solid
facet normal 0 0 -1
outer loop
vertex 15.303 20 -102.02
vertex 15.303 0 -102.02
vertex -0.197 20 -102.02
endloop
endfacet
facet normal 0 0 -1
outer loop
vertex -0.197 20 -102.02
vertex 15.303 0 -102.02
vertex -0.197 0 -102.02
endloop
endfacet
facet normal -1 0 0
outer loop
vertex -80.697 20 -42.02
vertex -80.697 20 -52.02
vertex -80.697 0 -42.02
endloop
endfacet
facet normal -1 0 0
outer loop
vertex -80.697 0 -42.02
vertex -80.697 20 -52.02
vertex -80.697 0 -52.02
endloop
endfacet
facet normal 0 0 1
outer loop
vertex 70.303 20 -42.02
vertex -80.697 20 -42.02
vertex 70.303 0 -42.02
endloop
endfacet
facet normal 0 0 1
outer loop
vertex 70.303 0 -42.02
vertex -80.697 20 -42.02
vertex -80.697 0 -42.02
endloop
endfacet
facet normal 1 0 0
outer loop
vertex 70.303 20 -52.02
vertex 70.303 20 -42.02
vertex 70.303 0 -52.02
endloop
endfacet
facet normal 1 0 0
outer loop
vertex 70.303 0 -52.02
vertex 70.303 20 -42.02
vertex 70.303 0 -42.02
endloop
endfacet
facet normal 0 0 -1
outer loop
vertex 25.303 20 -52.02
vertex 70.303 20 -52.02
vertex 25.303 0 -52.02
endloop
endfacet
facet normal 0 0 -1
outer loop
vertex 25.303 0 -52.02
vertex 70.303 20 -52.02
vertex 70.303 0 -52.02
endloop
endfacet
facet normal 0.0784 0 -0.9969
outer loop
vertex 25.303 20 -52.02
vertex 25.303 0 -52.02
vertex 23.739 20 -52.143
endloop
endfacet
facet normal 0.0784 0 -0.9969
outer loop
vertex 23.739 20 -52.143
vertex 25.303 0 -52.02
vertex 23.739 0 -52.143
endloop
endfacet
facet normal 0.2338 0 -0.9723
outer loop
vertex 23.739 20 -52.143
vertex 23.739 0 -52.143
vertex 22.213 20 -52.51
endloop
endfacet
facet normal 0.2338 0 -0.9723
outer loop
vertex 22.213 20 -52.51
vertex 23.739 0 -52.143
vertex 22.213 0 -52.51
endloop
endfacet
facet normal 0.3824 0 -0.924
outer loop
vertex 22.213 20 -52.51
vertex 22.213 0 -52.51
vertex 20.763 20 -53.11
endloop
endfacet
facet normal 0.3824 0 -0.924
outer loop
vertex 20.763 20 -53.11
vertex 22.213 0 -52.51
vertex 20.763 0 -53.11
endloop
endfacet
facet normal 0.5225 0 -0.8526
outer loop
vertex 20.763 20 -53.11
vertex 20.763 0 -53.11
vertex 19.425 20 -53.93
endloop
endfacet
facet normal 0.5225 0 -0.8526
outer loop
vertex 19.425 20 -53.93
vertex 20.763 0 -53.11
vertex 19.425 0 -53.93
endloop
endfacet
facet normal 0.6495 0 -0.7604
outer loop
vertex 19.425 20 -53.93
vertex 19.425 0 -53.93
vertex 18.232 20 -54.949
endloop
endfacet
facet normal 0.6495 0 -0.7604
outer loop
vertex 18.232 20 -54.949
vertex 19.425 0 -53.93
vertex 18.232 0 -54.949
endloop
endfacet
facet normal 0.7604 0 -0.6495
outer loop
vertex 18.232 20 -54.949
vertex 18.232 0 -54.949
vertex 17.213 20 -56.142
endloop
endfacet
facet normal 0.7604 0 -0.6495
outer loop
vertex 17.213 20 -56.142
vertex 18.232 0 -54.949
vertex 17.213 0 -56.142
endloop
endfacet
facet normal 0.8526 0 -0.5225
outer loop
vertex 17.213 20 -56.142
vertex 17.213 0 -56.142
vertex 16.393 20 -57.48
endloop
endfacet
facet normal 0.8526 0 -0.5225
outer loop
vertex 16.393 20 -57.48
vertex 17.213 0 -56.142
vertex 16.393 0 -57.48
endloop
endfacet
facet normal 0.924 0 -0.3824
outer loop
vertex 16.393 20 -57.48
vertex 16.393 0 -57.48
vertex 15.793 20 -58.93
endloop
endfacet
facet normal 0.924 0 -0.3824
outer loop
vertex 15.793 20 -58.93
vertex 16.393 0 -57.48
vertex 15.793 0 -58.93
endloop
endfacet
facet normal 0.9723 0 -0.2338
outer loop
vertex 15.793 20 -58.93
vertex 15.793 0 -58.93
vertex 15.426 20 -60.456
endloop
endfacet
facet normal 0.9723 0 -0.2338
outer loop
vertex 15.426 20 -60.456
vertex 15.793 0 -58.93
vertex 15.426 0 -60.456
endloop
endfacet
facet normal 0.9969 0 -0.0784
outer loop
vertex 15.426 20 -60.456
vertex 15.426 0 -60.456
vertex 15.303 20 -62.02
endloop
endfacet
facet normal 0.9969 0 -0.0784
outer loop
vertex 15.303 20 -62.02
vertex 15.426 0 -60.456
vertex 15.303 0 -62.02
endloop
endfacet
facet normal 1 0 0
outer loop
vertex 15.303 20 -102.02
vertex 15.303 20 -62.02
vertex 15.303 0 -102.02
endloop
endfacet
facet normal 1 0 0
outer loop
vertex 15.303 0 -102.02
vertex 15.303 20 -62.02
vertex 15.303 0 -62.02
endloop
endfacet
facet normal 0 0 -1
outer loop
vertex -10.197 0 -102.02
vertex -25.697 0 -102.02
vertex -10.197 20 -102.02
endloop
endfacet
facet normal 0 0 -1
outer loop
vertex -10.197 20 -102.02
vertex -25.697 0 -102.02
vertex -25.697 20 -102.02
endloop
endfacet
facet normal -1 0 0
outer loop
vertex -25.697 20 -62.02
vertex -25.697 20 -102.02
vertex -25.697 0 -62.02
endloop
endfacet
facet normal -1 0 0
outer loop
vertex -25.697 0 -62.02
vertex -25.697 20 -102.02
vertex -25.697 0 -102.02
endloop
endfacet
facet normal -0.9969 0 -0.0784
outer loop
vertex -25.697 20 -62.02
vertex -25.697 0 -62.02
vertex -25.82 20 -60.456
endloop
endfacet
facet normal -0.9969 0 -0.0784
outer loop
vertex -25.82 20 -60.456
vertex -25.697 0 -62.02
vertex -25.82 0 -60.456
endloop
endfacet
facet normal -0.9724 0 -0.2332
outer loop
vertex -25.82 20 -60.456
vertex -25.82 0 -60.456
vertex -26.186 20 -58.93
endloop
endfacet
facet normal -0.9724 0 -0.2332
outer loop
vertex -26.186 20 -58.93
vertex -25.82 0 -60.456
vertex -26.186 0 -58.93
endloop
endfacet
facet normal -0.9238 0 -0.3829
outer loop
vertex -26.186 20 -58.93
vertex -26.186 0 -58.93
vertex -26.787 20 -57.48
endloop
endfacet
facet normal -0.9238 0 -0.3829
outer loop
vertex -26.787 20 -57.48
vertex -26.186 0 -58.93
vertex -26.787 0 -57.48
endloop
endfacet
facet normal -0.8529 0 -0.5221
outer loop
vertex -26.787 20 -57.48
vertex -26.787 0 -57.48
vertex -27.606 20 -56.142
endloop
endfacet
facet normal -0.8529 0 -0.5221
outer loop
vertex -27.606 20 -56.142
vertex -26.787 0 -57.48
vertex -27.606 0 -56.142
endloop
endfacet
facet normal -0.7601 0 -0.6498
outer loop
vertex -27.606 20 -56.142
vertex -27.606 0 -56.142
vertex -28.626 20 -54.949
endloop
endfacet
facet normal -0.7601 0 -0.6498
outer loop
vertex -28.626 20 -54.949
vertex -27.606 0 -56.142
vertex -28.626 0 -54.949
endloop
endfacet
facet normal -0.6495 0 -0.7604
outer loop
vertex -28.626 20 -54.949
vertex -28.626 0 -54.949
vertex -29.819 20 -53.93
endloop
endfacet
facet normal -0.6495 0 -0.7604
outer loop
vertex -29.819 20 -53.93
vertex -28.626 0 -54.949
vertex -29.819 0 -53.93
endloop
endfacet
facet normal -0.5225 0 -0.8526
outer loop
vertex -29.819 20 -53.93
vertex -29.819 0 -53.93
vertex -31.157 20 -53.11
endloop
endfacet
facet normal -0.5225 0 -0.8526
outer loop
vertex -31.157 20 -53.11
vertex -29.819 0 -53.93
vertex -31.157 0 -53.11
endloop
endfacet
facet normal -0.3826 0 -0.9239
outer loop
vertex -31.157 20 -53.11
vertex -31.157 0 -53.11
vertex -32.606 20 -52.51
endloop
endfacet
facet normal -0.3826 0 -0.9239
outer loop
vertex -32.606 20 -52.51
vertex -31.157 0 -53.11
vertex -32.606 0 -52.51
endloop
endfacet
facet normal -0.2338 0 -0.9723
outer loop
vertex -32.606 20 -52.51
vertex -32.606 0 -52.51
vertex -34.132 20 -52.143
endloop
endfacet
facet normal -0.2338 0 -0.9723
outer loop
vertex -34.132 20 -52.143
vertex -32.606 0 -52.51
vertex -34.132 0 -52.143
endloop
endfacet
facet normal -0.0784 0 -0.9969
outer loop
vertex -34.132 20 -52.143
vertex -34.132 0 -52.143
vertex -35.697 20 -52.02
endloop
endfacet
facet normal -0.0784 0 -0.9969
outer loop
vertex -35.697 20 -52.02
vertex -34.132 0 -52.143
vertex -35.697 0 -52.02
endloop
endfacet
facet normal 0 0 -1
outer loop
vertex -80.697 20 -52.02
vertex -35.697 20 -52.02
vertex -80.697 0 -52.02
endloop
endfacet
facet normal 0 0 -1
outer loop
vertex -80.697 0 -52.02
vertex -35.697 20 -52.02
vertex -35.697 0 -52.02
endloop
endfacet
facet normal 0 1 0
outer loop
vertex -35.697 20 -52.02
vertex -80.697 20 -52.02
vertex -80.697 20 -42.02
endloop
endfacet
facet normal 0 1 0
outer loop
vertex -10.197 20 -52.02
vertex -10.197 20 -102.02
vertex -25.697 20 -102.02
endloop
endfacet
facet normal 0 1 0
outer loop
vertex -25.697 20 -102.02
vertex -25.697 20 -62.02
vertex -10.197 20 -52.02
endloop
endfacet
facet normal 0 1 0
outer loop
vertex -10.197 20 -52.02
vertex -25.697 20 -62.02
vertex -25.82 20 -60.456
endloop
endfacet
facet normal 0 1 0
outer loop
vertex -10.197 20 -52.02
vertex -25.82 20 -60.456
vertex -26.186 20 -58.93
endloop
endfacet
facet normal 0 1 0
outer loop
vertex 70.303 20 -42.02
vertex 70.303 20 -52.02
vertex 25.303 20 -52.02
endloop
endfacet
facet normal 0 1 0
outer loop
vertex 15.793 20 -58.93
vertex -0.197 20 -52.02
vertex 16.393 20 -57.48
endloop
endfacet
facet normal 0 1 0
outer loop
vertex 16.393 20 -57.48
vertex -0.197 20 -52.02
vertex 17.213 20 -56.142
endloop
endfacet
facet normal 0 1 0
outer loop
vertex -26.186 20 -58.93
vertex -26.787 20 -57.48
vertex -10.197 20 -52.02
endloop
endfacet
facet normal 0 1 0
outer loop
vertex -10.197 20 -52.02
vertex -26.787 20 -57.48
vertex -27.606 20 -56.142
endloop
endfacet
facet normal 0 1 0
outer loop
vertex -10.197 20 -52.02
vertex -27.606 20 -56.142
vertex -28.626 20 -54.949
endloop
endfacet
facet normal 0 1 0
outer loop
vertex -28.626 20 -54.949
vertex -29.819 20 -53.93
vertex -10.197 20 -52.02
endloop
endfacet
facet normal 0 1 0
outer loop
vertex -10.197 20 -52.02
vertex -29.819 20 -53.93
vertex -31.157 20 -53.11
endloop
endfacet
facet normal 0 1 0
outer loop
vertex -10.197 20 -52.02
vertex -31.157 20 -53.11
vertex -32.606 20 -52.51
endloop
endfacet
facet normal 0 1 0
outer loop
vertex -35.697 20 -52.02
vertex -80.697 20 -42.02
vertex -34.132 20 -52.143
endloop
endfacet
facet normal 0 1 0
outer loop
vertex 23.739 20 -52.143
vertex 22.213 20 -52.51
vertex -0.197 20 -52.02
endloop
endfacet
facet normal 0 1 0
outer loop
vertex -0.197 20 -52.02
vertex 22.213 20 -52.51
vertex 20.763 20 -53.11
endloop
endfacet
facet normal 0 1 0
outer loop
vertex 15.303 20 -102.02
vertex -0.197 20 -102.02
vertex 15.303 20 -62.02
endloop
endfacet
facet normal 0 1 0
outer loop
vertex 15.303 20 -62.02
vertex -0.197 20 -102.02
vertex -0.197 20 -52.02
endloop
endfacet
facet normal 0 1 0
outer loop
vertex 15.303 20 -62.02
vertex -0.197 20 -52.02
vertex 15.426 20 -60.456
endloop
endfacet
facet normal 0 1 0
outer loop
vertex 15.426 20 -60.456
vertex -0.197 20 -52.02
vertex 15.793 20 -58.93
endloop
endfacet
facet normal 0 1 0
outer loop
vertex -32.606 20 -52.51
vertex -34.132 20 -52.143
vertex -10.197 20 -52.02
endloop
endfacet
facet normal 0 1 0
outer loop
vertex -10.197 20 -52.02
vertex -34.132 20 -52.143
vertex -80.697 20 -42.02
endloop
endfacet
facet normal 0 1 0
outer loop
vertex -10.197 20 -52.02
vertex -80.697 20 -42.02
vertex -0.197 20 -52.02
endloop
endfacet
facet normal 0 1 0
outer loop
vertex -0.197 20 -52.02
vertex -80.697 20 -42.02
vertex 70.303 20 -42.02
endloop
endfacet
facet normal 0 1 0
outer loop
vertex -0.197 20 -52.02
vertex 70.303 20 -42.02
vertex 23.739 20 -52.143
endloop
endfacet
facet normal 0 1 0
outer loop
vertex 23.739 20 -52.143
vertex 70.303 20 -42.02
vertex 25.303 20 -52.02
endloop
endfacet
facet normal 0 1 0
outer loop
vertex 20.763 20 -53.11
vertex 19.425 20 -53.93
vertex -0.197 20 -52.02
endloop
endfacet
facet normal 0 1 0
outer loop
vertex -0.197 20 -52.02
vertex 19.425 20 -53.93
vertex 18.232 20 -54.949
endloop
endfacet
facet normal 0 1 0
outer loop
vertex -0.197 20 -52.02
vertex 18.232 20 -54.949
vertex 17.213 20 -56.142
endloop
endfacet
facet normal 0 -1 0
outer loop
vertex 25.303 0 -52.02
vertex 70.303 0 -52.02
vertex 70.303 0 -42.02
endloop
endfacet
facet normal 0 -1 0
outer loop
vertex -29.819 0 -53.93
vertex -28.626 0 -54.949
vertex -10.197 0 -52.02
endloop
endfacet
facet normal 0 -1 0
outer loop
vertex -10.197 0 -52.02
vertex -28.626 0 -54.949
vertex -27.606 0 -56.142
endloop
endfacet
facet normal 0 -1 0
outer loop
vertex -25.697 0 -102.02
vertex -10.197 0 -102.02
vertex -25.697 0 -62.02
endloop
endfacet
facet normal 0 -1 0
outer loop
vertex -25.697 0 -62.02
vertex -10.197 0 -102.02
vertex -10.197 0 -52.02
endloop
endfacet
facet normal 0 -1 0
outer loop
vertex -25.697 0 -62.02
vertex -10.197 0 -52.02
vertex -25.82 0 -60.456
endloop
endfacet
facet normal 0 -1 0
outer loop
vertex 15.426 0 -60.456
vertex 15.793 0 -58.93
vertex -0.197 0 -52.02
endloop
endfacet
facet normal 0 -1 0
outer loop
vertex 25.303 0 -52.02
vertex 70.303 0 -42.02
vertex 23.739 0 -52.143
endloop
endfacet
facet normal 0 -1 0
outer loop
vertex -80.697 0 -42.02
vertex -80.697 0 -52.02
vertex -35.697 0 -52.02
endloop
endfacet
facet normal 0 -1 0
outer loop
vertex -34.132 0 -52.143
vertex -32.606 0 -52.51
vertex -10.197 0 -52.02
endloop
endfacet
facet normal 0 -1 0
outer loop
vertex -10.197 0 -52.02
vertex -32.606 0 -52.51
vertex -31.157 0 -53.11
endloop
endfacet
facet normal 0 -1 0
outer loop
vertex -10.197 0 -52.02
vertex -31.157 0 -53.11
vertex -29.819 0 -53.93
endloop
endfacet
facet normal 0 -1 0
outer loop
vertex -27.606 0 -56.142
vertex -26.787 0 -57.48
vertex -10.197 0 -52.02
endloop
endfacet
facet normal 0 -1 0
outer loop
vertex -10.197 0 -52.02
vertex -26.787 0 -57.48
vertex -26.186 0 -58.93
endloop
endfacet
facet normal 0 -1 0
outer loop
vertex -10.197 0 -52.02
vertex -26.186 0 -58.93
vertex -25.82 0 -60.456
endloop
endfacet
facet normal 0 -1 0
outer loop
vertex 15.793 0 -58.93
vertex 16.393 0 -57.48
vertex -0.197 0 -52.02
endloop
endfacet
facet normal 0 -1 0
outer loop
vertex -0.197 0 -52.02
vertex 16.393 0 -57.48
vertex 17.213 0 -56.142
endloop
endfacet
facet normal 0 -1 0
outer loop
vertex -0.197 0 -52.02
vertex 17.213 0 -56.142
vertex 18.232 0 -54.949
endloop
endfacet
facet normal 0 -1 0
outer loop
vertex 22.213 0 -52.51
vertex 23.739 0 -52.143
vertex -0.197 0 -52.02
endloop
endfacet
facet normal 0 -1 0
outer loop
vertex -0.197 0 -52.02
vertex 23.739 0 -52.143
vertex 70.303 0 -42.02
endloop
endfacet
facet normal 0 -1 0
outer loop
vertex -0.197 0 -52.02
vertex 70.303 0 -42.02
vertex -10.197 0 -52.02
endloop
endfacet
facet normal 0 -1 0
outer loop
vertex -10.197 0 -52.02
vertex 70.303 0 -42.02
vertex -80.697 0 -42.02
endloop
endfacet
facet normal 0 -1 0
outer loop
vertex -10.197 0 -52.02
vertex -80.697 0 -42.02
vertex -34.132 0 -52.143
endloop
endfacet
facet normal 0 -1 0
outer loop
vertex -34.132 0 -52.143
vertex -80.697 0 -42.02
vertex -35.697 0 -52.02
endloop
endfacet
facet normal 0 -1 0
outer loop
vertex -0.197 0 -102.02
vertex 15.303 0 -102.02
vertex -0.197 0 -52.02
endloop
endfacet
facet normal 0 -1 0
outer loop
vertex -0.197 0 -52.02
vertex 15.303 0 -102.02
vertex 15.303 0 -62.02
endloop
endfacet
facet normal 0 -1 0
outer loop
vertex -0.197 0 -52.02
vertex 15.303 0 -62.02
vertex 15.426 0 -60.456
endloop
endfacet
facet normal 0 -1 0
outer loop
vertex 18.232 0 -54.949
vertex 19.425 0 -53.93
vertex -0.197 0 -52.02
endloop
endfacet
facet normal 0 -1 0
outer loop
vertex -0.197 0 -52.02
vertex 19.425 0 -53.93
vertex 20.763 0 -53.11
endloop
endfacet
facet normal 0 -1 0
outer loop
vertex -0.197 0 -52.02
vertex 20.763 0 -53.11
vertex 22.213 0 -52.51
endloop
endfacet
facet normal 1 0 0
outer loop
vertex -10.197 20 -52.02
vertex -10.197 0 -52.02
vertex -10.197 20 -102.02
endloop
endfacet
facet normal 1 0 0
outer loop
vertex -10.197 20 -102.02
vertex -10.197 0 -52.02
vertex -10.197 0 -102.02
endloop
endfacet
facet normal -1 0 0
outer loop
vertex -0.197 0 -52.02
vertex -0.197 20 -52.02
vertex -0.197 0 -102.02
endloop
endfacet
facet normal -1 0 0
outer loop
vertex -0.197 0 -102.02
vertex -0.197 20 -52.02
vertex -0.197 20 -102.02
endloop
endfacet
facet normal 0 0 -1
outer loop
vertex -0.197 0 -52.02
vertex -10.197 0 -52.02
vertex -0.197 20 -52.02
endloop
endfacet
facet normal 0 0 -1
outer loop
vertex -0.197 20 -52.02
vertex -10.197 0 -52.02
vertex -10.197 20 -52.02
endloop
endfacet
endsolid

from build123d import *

# Parameters (mm, degrees)
BOSS_EXTRUDE2_DEPTH = 20
SKETCH4_W           = 10
SKETCH4_H           = 20
CUT_EXTRUDE1_DEPTH  = 50


with BuildPart() as part:
    # Sketch1 → Boss-Extrude2 (new body)
    with BuildSketch(Plane(origin=(0, 0, 0), x_dir=(1, 0, 0), z_dir=(0, 1, 0))):
        with BuildLine():
            Line((-80.69665409, 52.02034588), (-35.69665409, 52.02034588))
            ThreePointArc((-35.69665409, 52.02034588), (-28.625586278, 54.949278068), (-25.69665409, 62.02034588))
            Line((-25.69665409, 62.02034588), (-25.69665409, 102.02034588))
            Line((-25.69665409, 102.02034588), (15.30334591, 102.02034588))
            Line((15.30334591, 102.02034588), (15.30334591, 62.02034588))
            ThreePointArc((15.30334591, 62.02034588), (18.232278099, 54.949278068), (25.30334591, 52.02034588))
            Line((25.30334591, 52.02034588), (70.30334591, 52.02034588))
            Line((70.30334591, 52.02034588), (70.30334591, 42.02034588))
            Line((70.30334591, 42.02034588), (-80.69665409, 42.02034588))
            Line((-80.69665409, 42.02034588), (-80.69665409, 52.02034588))
        make_face()
    extrude(amount=BOSS_EXTRUDE2_DEPTH)

    # Sketch4 → Cut-Extrude1 (cut)
    with BuildSketch(Plane(origin=(0, 0, -102.02034588), x_dir=(-1, 0, 0), z_dir=(0, 0, -1))):
        with Locations((5.19665409, 10)):
            Rectangle(SKETCH4_W, SKETCH4_H)
    extrude(amount=-CUT_EXTRUDE1_DEPTH, mode=Mode.SUBTRACT)


solid = part.part
